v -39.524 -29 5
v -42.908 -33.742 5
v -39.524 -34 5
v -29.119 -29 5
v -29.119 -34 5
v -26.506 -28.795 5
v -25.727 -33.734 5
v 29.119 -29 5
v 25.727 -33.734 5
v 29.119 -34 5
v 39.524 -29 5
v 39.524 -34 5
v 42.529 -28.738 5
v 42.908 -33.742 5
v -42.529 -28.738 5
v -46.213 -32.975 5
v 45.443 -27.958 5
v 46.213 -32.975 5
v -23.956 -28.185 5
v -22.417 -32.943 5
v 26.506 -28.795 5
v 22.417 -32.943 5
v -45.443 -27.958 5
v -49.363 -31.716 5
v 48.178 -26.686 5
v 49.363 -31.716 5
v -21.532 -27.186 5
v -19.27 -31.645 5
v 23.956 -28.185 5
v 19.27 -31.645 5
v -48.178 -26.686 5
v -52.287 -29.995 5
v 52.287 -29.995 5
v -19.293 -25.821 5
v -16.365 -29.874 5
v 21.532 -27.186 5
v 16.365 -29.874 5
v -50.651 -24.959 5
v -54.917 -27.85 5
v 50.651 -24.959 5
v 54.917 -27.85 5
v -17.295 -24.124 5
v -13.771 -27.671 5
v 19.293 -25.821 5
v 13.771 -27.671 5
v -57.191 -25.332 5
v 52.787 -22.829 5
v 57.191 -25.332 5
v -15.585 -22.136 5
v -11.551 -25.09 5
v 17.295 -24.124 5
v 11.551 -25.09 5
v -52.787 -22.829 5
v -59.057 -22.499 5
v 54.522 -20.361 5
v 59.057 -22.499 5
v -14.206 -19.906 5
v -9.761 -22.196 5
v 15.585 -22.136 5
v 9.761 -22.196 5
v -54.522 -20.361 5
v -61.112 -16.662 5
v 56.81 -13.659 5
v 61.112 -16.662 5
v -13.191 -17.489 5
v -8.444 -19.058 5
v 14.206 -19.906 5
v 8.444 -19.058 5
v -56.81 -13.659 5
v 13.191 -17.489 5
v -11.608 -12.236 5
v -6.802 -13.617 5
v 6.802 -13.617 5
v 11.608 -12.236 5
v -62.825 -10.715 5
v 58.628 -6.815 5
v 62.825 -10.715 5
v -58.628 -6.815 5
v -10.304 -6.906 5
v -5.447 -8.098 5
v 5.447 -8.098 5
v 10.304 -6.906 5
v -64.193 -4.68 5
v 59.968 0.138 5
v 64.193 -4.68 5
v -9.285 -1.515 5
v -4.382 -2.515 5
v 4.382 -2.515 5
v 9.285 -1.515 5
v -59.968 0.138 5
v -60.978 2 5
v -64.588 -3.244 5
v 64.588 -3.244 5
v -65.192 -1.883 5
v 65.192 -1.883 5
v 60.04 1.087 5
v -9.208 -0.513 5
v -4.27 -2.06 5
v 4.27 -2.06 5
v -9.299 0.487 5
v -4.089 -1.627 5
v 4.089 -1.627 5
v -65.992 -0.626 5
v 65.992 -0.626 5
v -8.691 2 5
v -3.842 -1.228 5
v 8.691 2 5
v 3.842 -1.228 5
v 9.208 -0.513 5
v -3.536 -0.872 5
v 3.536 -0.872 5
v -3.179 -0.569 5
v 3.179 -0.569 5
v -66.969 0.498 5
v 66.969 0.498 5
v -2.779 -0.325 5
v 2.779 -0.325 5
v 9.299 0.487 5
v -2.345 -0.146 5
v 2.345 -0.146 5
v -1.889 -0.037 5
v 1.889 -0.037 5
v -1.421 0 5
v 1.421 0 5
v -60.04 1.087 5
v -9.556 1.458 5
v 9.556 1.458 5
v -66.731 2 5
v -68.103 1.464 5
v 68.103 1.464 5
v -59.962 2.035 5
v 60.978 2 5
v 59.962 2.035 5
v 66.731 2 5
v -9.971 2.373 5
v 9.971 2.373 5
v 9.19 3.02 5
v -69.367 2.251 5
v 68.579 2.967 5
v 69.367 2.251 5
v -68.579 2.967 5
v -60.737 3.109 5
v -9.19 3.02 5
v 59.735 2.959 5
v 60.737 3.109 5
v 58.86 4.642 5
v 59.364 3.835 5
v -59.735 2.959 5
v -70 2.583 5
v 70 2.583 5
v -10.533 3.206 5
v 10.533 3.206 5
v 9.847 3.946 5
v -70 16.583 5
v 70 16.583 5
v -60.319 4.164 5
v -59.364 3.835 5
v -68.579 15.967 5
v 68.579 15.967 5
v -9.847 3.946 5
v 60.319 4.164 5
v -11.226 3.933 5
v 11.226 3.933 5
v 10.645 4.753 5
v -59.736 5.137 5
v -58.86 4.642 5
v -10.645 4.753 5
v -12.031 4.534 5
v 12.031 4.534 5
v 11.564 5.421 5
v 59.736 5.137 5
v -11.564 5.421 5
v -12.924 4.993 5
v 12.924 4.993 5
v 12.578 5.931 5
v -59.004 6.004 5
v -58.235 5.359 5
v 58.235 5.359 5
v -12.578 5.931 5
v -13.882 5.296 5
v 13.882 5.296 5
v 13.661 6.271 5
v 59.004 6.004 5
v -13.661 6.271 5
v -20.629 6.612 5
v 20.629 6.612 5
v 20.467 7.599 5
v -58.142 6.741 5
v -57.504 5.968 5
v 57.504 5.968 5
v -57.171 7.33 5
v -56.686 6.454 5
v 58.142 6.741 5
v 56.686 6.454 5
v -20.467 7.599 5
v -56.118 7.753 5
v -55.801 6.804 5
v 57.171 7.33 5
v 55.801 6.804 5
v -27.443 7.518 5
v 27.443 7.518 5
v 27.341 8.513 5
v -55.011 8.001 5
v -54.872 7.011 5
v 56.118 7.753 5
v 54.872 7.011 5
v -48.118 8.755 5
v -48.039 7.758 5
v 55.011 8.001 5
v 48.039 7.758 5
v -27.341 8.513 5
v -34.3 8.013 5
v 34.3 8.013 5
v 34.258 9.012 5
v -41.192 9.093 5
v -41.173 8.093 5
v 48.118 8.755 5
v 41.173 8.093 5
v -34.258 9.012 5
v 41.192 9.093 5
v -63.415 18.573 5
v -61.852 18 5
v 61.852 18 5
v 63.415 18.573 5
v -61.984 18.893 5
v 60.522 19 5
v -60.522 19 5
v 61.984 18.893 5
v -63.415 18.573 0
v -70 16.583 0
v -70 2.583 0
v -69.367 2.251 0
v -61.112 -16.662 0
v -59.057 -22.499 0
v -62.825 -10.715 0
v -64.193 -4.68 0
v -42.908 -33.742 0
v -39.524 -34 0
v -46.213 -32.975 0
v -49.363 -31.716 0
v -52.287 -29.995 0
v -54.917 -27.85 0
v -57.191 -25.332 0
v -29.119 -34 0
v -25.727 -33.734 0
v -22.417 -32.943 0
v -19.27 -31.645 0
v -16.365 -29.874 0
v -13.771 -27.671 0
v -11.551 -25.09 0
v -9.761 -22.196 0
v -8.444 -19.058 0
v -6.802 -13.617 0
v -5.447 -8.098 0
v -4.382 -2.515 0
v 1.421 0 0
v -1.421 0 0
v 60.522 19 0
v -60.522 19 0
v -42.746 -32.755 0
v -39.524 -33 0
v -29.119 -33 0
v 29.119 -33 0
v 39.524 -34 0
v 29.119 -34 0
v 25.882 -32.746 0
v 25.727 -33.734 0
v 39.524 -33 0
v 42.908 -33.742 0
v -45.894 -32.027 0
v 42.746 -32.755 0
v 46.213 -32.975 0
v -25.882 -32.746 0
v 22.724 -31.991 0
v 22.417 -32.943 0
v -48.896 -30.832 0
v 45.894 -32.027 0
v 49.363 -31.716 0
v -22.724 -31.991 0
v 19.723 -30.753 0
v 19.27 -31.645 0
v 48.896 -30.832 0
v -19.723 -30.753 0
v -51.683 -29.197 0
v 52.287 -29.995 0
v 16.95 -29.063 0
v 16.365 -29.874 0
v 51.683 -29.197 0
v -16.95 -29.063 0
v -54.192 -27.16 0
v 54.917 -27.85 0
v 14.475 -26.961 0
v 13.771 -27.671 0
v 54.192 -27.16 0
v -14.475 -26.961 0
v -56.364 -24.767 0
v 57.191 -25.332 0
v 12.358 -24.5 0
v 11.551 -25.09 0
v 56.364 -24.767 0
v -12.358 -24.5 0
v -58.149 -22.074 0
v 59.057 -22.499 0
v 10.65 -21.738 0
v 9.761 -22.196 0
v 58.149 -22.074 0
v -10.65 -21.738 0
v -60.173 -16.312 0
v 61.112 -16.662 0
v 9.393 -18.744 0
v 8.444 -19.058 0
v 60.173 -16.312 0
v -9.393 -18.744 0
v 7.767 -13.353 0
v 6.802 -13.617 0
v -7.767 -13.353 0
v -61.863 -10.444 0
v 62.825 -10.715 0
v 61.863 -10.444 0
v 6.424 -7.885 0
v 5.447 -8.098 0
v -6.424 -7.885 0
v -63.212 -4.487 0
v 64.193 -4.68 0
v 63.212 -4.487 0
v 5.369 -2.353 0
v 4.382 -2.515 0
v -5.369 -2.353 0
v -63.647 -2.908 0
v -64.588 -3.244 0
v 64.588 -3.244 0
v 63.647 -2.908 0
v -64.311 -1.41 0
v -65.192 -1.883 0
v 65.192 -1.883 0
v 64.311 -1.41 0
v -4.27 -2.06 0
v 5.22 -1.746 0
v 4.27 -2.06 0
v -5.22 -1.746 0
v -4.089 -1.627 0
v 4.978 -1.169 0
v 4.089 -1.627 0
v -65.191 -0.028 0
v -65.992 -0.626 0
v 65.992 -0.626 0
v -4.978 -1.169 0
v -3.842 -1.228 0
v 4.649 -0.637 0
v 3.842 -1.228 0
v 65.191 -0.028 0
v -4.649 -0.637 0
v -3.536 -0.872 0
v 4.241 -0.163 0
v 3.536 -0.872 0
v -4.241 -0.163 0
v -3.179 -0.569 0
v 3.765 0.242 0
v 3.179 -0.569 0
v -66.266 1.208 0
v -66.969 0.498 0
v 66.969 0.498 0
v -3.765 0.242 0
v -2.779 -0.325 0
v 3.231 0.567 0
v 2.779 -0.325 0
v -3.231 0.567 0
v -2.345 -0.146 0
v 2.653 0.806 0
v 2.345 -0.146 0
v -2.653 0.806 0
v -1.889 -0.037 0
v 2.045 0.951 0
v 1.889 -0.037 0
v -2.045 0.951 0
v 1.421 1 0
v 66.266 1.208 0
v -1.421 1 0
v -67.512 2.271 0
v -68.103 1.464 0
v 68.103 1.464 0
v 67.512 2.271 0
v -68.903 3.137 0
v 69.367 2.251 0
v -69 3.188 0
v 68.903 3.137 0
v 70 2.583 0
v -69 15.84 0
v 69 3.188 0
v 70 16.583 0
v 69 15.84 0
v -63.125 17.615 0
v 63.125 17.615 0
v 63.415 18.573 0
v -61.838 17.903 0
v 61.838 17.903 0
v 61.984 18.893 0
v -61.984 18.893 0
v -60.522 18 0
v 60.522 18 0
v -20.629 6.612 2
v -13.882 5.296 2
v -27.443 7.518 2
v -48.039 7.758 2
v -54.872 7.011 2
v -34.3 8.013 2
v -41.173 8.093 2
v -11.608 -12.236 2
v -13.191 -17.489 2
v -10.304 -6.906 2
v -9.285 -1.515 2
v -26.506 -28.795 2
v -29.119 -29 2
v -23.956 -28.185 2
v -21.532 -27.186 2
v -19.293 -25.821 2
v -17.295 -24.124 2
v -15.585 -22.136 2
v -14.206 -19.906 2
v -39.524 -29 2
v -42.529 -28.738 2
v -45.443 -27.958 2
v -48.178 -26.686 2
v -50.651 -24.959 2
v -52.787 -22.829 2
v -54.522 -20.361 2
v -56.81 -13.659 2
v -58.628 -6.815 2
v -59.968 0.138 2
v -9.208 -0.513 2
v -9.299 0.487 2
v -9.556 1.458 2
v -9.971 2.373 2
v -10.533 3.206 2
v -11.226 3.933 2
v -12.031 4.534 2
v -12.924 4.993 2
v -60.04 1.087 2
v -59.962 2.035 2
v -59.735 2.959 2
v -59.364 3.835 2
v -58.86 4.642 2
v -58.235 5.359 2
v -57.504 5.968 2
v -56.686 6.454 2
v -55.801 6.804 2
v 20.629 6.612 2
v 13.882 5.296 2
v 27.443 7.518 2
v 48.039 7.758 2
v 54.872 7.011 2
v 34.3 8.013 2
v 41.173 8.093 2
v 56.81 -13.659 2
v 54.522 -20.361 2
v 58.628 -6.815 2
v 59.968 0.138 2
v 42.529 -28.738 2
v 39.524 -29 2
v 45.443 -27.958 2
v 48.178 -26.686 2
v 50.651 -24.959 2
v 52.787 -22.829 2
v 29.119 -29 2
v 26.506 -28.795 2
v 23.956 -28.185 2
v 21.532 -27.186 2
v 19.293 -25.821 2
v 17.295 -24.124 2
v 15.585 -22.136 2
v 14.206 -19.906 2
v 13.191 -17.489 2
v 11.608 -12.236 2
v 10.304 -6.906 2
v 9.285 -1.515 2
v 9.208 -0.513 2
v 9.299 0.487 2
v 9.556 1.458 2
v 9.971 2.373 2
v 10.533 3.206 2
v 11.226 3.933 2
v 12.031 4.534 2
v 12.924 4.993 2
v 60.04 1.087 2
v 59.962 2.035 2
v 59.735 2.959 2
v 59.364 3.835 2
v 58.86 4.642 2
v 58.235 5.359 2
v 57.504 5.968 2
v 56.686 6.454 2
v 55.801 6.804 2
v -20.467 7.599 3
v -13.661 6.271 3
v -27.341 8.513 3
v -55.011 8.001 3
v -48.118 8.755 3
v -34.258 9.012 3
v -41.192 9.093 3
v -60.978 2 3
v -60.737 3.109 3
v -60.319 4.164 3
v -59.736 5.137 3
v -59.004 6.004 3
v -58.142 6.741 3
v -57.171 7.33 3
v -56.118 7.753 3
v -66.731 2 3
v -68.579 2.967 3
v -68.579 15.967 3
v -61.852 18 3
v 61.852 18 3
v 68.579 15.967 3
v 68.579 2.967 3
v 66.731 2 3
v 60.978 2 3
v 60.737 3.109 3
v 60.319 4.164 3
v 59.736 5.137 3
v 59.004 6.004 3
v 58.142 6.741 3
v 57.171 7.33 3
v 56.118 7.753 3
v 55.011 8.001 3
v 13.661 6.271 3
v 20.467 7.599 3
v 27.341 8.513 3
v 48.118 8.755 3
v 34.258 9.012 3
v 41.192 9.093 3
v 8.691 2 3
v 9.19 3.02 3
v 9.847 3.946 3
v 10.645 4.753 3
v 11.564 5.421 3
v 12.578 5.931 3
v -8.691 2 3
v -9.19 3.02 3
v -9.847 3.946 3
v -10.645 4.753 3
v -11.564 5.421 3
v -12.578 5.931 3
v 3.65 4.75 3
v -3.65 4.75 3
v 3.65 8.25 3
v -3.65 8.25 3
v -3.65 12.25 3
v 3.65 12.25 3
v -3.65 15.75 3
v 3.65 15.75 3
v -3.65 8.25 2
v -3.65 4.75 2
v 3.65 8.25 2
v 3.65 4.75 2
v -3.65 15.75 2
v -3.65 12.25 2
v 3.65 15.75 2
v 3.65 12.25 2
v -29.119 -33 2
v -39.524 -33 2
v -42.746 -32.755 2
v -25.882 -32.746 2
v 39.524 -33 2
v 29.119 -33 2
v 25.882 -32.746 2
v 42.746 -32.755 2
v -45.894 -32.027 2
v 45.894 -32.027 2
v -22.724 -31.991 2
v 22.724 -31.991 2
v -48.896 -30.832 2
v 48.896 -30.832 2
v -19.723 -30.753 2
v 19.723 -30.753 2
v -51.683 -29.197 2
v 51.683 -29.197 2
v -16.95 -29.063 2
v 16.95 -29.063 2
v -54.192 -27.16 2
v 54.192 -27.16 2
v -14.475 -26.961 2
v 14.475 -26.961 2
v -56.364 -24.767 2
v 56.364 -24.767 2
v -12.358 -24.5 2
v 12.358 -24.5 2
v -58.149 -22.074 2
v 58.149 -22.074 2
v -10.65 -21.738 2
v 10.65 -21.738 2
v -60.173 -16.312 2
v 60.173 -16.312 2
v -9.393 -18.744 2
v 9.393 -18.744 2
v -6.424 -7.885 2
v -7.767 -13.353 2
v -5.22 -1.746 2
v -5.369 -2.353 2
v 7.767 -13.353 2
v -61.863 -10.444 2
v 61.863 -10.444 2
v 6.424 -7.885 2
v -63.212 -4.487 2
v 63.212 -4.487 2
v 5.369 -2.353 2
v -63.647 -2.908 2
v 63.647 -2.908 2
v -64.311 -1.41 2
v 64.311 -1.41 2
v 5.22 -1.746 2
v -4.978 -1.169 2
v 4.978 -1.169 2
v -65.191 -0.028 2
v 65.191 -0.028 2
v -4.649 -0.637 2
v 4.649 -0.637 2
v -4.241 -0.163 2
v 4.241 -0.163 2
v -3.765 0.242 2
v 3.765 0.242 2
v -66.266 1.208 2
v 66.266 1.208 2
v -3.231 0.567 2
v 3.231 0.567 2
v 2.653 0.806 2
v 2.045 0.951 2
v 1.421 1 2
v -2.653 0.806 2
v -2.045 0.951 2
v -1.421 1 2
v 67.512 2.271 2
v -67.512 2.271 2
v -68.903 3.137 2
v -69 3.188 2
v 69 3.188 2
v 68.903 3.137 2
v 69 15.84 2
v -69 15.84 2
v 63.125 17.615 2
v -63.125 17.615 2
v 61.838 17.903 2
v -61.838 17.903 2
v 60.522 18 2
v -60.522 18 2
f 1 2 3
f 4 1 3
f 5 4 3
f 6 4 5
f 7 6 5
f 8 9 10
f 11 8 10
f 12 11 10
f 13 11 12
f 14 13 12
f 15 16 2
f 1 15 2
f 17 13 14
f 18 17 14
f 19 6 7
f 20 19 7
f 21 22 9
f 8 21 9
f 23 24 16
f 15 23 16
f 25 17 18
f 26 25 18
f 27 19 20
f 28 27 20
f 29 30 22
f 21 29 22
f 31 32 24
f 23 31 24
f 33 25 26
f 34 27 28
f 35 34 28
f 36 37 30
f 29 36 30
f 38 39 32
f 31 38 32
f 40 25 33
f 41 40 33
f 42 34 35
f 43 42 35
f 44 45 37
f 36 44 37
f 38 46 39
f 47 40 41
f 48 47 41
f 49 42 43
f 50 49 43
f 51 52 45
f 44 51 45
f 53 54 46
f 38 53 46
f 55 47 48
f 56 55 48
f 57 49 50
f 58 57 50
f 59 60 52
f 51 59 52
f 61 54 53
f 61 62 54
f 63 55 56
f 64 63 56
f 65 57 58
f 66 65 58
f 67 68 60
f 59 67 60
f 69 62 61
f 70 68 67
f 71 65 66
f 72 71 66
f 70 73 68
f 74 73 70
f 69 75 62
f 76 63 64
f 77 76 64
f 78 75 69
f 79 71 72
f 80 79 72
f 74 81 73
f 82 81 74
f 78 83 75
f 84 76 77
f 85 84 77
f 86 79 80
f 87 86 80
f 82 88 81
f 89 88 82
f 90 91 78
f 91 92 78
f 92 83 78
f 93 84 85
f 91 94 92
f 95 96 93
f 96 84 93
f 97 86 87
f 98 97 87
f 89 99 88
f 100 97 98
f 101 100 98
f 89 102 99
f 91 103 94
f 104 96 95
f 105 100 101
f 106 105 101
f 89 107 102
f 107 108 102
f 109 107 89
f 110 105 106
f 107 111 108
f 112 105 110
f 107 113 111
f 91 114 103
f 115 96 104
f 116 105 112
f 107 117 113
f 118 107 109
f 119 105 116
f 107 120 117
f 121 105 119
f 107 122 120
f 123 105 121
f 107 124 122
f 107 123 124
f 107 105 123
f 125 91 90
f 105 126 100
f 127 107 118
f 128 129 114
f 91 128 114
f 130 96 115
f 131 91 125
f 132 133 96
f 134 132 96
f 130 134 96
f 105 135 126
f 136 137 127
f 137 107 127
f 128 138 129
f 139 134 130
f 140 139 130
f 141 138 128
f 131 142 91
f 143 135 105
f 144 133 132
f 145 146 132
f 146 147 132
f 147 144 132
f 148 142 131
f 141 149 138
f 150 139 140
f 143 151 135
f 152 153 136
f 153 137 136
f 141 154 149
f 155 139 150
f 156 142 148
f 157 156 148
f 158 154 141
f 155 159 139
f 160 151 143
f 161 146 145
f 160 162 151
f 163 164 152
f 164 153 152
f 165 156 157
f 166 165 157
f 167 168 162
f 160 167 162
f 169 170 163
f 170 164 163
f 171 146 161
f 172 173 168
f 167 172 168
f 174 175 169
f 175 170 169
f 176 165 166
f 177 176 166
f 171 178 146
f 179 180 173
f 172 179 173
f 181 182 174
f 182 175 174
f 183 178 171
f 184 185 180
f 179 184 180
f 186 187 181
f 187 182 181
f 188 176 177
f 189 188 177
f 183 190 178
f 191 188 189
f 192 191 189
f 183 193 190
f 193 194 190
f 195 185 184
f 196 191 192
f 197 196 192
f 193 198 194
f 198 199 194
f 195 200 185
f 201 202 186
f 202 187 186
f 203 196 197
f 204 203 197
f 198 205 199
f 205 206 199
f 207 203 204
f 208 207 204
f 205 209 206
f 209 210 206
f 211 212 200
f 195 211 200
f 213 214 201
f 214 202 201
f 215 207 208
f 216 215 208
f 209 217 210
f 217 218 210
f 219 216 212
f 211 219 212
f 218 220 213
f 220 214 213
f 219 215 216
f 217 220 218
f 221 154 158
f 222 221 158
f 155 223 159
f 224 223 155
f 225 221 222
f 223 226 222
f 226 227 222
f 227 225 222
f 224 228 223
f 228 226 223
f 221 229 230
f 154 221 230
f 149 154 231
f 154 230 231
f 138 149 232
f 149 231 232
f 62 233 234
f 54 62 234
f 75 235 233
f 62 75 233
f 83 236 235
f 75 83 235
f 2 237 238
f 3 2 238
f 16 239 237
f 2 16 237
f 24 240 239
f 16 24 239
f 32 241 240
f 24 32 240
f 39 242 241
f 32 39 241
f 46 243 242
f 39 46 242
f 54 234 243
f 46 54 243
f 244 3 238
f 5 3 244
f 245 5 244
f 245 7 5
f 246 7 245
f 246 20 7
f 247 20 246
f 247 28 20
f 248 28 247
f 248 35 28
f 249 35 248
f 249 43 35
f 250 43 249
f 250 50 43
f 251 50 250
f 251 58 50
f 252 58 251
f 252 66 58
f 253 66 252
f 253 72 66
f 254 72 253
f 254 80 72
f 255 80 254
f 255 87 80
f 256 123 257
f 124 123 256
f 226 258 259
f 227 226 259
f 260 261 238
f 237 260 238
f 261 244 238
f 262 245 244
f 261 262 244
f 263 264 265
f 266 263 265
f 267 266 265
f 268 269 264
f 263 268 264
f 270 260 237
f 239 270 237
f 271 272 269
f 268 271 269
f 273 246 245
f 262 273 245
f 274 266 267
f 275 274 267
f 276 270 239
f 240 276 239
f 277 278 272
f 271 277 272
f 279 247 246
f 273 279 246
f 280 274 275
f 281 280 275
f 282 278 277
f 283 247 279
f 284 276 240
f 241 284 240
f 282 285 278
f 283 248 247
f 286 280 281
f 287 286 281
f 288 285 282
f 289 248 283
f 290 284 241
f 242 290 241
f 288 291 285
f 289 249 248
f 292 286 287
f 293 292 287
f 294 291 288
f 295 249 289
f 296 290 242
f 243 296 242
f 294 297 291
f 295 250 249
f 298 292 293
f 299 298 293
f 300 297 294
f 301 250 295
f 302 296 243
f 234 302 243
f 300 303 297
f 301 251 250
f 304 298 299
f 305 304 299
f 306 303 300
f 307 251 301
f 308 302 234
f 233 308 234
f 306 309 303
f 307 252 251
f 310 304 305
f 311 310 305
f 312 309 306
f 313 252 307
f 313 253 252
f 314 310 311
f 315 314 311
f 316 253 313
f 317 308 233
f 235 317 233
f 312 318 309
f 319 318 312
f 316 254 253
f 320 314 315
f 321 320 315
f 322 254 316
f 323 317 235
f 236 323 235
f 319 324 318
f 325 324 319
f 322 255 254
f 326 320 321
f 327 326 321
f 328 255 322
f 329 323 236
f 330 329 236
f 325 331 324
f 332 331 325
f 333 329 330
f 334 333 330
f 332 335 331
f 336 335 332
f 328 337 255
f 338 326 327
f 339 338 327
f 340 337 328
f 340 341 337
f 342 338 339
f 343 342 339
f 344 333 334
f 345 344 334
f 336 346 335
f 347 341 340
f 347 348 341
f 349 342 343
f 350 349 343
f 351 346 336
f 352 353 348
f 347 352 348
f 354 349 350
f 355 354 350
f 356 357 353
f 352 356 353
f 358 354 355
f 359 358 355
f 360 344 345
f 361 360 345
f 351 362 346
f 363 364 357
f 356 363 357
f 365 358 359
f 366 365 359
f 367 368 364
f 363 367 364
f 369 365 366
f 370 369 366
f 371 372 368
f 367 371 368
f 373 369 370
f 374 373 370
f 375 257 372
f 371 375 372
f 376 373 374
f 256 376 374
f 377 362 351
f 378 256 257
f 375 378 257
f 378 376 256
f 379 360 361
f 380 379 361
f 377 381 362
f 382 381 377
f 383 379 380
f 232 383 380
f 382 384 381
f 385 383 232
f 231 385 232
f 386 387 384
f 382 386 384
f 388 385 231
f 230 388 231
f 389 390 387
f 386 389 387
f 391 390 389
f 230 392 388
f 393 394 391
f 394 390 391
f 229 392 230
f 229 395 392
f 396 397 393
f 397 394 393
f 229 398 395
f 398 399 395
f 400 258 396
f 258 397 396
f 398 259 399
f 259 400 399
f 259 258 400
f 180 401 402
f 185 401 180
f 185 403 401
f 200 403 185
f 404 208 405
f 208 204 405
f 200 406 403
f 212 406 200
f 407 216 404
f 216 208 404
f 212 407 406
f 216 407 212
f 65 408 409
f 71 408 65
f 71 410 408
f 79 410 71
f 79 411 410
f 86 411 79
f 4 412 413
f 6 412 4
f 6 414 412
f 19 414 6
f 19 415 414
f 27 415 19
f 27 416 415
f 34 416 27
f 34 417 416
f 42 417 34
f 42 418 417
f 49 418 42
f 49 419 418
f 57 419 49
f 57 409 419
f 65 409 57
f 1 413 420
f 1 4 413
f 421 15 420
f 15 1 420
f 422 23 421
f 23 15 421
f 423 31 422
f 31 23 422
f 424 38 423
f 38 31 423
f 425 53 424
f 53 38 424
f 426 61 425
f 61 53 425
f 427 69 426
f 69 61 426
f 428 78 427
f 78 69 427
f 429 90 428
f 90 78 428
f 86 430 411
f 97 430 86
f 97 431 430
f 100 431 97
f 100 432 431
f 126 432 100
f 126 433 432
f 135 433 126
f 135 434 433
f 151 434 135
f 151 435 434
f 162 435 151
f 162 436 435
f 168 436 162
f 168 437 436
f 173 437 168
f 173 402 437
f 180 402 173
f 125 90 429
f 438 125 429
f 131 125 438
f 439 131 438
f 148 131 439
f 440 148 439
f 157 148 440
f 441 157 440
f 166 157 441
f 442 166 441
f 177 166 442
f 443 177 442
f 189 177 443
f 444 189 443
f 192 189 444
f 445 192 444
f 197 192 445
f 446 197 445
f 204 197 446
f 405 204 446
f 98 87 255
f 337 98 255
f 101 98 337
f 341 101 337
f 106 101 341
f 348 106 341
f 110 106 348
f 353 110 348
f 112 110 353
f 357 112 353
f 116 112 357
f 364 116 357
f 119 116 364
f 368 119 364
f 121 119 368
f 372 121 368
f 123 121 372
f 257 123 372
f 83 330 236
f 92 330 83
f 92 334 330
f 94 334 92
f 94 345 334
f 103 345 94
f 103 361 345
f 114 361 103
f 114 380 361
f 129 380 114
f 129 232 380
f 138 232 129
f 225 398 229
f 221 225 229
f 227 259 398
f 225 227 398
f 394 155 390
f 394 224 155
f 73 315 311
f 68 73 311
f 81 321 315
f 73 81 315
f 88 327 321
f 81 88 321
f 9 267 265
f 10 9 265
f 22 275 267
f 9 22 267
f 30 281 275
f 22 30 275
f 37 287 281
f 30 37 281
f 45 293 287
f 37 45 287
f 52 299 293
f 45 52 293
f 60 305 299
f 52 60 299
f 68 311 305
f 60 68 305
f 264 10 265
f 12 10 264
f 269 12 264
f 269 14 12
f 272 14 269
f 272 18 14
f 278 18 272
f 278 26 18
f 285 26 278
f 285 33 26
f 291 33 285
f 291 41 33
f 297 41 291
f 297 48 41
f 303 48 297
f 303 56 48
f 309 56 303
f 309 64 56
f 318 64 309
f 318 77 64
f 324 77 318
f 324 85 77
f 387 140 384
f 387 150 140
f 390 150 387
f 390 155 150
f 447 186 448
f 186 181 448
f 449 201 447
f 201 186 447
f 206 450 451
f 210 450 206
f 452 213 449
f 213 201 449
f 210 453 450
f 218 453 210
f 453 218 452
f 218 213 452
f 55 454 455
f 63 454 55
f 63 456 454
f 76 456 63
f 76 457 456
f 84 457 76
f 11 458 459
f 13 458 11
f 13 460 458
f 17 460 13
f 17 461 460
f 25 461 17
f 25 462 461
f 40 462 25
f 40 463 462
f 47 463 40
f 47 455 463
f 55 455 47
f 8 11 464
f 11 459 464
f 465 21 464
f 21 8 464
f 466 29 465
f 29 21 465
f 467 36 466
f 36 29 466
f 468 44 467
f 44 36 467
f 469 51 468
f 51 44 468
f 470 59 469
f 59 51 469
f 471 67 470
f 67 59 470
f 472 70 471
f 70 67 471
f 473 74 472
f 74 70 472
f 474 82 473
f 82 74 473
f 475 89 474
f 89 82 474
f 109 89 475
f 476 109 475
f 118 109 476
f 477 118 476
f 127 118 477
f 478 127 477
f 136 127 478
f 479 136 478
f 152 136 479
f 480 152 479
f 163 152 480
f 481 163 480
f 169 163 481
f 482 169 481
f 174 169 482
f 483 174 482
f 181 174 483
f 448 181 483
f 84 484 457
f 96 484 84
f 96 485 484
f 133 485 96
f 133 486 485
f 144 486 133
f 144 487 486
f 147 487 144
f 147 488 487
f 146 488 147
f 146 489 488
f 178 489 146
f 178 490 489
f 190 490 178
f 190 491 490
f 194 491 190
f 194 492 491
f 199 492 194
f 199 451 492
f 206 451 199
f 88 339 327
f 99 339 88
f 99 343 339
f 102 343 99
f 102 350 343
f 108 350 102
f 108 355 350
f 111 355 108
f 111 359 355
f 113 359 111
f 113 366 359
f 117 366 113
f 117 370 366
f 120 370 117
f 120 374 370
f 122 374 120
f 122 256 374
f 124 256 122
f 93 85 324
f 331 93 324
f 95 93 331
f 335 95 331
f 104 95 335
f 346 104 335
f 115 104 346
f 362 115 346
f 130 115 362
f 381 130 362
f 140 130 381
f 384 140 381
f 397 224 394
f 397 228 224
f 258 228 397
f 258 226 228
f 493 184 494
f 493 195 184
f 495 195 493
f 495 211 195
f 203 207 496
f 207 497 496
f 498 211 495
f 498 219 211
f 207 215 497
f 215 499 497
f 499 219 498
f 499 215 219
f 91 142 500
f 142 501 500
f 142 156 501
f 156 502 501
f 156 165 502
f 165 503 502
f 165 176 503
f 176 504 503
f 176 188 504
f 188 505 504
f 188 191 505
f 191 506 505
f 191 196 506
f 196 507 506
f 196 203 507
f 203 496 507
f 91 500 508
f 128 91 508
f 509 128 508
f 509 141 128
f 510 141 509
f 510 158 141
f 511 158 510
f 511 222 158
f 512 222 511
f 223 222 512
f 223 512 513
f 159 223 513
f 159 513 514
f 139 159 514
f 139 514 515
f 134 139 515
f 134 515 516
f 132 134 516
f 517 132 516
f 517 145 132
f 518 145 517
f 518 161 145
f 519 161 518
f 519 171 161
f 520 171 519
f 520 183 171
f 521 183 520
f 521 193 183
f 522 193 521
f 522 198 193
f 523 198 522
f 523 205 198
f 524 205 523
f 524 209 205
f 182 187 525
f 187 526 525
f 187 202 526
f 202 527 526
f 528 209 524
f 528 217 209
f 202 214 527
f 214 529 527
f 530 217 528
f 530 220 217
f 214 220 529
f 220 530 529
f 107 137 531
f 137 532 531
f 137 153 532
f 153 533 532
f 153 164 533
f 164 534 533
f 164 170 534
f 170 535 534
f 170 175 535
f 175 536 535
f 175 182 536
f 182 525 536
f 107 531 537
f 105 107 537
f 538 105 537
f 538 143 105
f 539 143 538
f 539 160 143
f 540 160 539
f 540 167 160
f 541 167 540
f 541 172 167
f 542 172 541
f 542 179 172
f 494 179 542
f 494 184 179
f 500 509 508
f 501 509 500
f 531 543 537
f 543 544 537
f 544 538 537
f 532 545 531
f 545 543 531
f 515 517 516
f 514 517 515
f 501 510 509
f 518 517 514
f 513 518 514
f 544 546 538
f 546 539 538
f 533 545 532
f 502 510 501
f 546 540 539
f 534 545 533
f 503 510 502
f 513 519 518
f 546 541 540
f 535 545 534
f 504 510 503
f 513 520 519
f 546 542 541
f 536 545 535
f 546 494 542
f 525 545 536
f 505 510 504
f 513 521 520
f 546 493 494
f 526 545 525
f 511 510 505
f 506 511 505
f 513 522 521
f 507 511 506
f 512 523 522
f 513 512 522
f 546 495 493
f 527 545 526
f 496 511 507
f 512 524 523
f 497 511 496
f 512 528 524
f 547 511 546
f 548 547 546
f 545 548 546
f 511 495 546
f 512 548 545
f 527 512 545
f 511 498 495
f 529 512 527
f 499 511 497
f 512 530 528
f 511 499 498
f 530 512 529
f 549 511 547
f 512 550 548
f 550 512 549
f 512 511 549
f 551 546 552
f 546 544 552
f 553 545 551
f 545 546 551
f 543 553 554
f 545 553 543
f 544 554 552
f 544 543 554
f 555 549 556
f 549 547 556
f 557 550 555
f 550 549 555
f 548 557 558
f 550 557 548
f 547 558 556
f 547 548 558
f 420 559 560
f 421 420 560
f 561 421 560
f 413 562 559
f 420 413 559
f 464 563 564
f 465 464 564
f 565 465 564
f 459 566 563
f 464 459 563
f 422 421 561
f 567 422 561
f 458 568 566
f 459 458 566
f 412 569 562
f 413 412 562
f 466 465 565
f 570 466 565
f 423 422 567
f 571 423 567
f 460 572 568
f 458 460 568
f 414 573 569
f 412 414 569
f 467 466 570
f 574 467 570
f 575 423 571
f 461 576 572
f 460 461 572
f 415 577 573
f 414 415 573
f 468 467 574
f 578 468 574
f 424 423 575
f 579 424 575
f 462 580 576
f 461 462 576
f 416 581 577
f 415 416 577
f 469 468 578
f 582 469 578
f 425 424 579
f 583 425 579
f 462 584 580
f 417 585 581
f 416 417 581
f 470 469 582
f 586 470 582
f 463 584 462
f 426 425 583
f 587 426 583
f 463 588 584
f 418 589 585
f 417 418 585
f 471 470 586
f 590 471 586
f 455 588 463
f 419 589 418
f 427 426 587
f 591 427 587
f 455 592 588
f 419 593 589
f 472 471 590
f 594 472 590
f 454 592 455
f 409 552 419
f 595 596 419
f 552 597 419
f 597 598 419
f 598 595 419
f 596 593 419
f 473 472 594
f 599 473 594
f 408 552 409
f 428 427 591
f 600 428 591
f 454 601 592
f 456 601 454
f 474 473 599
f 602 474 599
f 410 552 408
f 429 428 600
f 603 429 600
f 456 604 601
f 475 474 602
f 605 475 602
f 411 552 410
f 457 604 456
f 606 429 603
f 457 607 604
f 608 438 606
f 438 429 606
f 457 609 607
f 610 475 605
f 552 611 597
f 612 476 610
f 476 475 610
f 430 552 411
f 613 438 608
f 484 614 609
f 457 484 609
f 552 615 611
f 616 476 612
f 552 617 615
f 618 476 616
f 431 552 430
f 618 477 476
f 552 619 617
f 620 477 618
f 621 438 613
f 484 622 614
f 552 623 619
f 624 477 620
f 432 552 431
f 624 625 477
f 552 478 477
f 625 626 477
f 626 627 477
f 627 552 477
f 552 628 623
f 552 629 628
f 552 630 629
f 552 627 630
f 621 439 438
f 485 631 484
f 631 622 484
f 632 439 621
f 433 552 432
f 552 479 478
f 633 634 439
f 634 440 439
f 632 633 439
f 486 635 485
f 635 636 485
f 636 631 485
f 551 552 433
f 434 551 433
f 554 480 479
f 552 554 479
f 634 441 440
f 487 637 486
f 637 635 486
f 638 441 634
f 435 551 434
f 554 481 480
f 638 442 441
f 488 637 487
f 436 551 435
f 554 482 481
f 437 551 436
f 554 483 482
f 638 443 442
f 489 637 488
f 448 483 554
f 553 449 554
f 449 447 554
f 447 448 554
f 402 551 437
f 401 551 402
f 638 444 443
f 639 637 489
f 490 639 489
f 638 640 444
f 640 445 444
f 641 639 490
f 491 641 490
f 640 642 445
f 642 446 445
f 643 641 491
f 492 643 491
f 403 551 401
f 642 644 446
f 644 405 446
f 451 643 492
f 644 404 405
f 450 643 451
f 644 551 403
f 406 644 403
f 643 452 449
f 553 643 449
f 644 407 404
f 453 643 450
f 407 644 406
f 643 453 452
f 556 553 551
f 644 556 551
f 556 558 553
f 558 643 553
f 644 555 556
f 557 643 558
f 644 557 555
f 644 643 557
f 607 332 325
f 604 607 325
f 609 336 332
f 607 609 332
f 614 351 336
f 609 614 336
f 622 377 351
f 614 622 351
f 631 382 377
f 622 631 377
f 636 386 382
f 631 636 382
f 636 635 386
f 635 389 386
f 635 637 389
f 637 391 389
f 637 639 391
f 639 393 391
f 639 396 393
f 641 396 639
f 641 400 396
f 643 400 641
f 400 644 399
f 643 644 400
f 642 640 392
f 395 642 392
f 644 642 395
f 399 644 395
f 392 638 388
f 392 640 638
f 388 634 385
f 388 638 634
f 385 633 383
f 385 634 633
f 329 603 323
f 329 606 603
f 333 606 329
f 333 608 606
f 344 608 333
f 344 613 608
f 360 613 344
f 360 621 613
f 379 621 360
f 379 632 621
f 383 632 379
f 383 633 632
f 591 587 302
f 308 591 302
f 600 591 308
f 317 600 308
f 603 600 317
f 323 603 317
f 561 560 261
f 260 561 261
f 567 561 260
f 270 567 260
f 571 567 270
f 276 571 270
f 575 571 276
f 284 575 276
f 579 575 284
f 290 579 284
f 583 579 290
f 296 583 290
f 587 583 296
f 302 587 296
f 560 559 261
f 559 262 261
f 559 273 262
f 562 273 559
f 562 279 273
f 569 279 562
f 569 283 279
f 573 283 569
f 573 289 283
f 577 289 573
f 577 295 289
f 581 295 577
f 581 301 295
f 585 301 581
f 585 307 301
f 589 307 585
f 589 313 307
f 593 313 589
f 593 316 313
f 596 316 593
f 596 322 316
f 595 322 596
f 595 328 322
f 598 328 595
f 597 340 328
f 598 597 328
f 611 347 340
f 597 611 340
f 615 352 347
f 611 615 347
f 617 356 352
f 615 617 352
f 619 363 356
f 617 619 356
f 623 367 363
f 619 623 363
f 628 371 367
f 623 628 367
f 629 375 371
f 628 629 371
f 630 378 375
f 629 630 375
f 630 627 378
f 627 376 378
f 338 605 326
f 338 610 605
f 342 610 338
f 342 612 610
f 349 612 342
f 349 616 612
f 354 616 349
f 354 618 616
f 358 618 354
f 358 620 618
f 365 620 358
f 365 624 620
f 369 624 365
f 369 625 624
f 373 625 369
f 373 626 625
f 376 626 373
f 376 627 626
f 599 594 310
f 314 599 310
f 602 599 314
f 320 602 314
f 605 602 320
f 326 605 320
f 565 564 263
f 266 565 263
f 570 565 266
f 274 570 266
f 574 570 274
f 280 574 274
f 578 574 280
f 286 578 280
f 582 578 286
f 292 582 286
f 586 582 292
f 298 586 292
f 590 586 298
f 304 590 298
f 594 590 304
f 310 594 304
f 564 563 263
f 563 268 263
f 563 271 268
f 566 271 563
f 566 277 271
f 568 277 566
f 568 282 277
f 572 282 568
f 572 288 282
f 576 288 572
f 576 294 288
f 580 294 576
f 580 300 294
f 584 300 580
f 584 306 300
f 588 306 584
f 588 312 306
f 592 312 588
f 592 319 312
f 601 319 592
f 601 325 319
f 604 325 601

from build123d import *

# Parameters (mm, degrees)
BOSS_EXTRUDE1_DEPTH  = 5
CUT_EXTRUDE1_DEPTH   = 78.98076686
FILLET1_R            = 6
FILLET4_R            = 3
FILLET5_R            = 10
FILLET1_OF_MIRROR2_R = 6
FILLET4_OF_MIRROR2_R = 3
FILLET5_OF_MIRROR2_R = 10
CUT_EXTRUDE2_DEPTH   = 2
SKETCH4_W            = 7.3
SKETCH4_H            = 3.5
CUT_EXTRUDE3_DEPTH   = 78.878110027
CUT_EXTRUDE4_START   = -1
CUT_EXTRUDE4_DEPTH   = 2


with BuildPart() as part:
    # Sketch1 → Boss-Extrude1 (new body)
    with BuildSketch(Plane.XY):
        with BuildLine():
            Line((-70, 16.58258549), (-70, 2.58258549))
            Line((-70, 2.58258549), (-65, -0.035347018))
            ThreePointArc((-65, -0.035347018), (-62.639321295, -11.428715409), (-59.057390955, -22.499009997))
            ThreePointArc((-59.057390955, -22.499009997), (-50.858075368, -30.911196539), (-39.524366721, -34))
            Line((-39.524366721, -34), (-29.119439011, -34))
            ThreePointArc((-29.119439011, -34), (-16.364659062, -29.873537236), (-8.443933007, -19.058075838))
            ThreePointArc((-8.443933007, -19.058075838), (-5.792248942, -9.629238804), (-4, 0))
            Line((-4, 0), (0, 0))
            Line((0, 0), (0, 19))
            Line((0, 19), (-62, 19))
            Line((-62, 19), (-70, 16.58258549))
        make_face()
    boss_extrude1 = extrude(amount=BOSS_EXTRUDE1_DEPTH)

    # Sketch2 → Cut-Extrude1 (cut, through all)
    with BuildSketch(Plane.XY.offset(5)):
        with BuildLine():
            Line((-39.524366721, -29), (-29.119439011, -29))
            ThreePointArc((-29.119439011, -29), (-19.293350153, -25.821035725), (-13.191343035, -17.488968441))
            ThreePointArc((-13.191343035, -17.488968441), (-10.661621804, -8.493805879), (-8.951806424, 0.692541077))
            ThreePointArc((-8.951806424, 0.692541077), (-8.83111114, 2.375291538), (-8.93749946, 4.05900707))
            ThreePointArc((-8.93749946, 4.05900707), (-33.987475013, 7.999161751), (-59.288689209, 6.303681198))
            ThreePointArc((-59.288689209, 6.303681198), (-60.075532666, 3.563074376), (-60.056140486, 0.711816353))
            ThreePointArc((-60.056140486, 0.711816353), (-57.852345066, -9.972645379), (-54.521869403, -20.361214511))
            ThreePointArc((-54.521869403, -20.361214511), (-48.178176596, -26.685865227), (-39.524366721, -29))
        make_face()
    cut_extrude1 = extrude(amount=-CUT_EXTRUDE1_DEPTH, mode=Mode.SUBTRACT)

    # Fillet1
    fillet1_edges = [part.edges().sort_by_distance(p)[0] for p in [
        (-8.93749946, 4.05900707, 2.5),
        (-59.288689209, 6.303681198, 2.5),
    ]]
    fillet(fillet1_edges, radius=FILLET1_R)

    # Fillet4
    fillet4_edges = [part.edges().sort_by_distance(p)[0] for p in [
        (-4, 0, 2.5),
    ]]
    fillet(fillet4_edges, radius=FILLET4_R)

    # Fillet5
    fillet5_edges = [part.edges().sort_by_distance(p)[0] for p in [
        (-65, -0.035347018, 2.5),
        (-62, 19, 2.5),
    ]]
    fillet(fillet5_edges, radius=FILLET5_R)

    # Mirror2: Boss-Extrude1, Cut-Extrude1 across plane
    add(boss_extrude1.mirror(Plane(origin=(0, 19, 5), x_dir=(0, 0, 1), z_dir=(1, 0, 0))))
    add(cut_extrude1.mirror(Plane(origin=(0, 19, 5), x_dir=(0, 0, 1), z_dir=(1, 0, 0))), mode=Mode.SUBTRACT)

    # Fillet1 of Mirror2
    fillet1_of_mirror2_edges = [part.edges().sort_by_distance(p)[0] for p in [
        (8.93749946, 4.05900707, 2.5),
        (59.288689209, 6.303681198, 2.5),
    ]]
    fillet(fillet1_of_mirror2_edges, radius=FILLET1_OF_MIRROR2_R)

    # Fillet4 of Mirror2
    fillet4_of_mirror2_edges = [part.edges().sort_by_distance(p)[0] for p in [
        (4, 0, 2.5),
    ]]
    fillet(fillet4_of_mirror2_edges, radius=FILLET4_OF_MIRROR2_R)

    # Fillet5 of Mirror2
    fillet5_of_mirror2_edges = [part.edges().sort_by_distance(p)[0] for p in [
        (65, -0.035347018, 2.5),
        (62, 19, 2.5),
    ]]
    fillet(fillet5_of_mirror2_edges, radius=FILLET5_OF_MIRROR2_R)

    # Sketch3 → Cut-Extrude2 (cut)
    with BuildSketch(Plane.XY.offset(5)):
        with BuildLine():
            Line((-61.852211578, 18), (-68.579000582, 15.967320332))
            Line((-68.579000582, 15.967320332), (-68.579000582, 2.967348727))
            Line((-68.579000582, 2.967348727), (-66.731457293, 2))
            Line((-66.731457293, 2), (-60.978148267, 2))
            ThreePointArc((-60.978148267, 2), (-59.004204322, 6.004331826), (-55.011184694, 8.001059729))
            ThreePointArc((-55.011184694, 8.001059729), (-34.257732376, 9.011771002), (-13.66121584, 6.271182212))
            ThreePointArc((-13.66121584, 6.271182212), (-10.64537641, 4.753154175), (-8.690935653, 2))
            Line((-8.690935653, 2), (-4.382114171, 2))
            Line((-4.382114171, 2), (0, 2))
            Line((0, 2), (0, 18))
            Line((0, 18), (-61.852211578, 18))
        make_face()
        with BuildLine():
            Line((61.852211578, 18), (0, 18))
            Line((0, 18), (0, 2))
            Line((0, 2), (4.382114171, 2))
            Line((4.382114171, 2), (8.690935653, 2))
            ThreePointArc((8.690935653, 2), (10.64537641, 4.753154175), (13.66121584, 6.271182212))
            ThreePointArc((13.66121584, 6.271182212), (34.257732376, 9.011771002), (55.011184694, 8.001059729))
            ThreePointArc((55.011184694, 8.001059729), (59.004204322, 6.004331826), (60.978148267, 2))
            Line((60.978148267, 2), (66.731457293, 2))
            Line((66.731457293, 2), (68.579000582, 2.967348727))
            Line((68.579000582, 2.967348727), (68.579000582, 15.967320332))
            Line((68.579000582, 15.967320332), (61.852211578, 18))
        make_face()
    extrude(amount=-CUT_EXTRUDE2_DEPTH, mode=Mode.SUBTRACT)

    # Sketch4 → Cut-Extrude3 (cut, through all)
    with BuildSketch(Plane.XY.offset(3)):
        with Locations((0, 14)):
            Rectangle(SKETCH4_W, SKETCH4_H)
        with Locations((0, 6.5)):
            Rectangle(SKETCH4_W, SKETCH4_H)
    extrude(amount=-CUT_EXTRUDE3_DEPTH, mode=Mode.SUBTRACT)

    # Sketch6 → Cut-Extrude4 (cut)
    with BuildSketch(Plane.XY.offset(3).offset(CUT_EXTRUDE4_START)):
        with BuildLine():
            Line((69, 15.840104069), (63.125446932, 17.615257798))
            ThreePointArc((63.125446932, 17.615257798), (61.837919684, 17.903294901), (60.522115781, 18))
            Line((60.522115781, 18), (-60.522115781, 18))
            ThreePointArc((-60.522115781, 18), (-61.837919684, 17.903294901), (-63.125446932, 17.615257798))
            Line((-63.125446932, 17.615257798), (-69, 15.840104069))
            Line((-69, 15.840104069), (-69, 3.18777834))
            Line((-69, 3.18777834), (-68.903213495, 3.137102232))
            ThreePointArc((-68.903213495, 3.137102232), (-65.190574761, -0.027998941), (-63.211910581, -4.487420414))
            ThreePointArc((-63.211910581, -4.487420414), (-61.060268821, -13.390129723), (-58.149320801, -22.074263356))
            ThreePointArc((-58.149320801, -22.074263356), (-50.3209013, -30.066984302), (-39.524366721, -33))
            Line((-39.524366721, -33), (-29.119439011, -33))
            ThreePointArc((-29.119439011, -33), (-16.95039728, -29.063036934), (-9.393415013, -18.744254359))
            ThreePointArc((-9.393415013, -18.744254359), (-7.059487639, -10.627794467), (-5.368651351, -2.353423746))
            ThreePointArc((-5.368651351, -2.353423746), (-4.01101304, 0.048467239), (-1.421254848, 1))
            Line((-1.421254848, 1), (1.421254848, 1))
            ThreePointArc((1.421254848, 1), (4.01101304, 0.048467239), (5.368651351, -2.353423746))
            ThreePointArc((5.368651351, -2.353423746), (7.059487639, -10.627794467), (9.393415013, -18.744254359))
            ThreePointArc((9.393415013, -18.744254359), (16.95039728, -29.063036934), (29.119439011, -33))
            Line((29.119439011, -33), (39.524366721, -33))
            ThreePointArc((39.524366721, -33), (50.3209013, -30.066984302), (58.149320801, -22.074263356))
            ThreePointArc((58.149320801, -22.074263356), (61.060268821, -13.390129723), (63.211910581, -4.487420414))
            ThreePointArc((63.211910581, -4.487420414), (65.190574761, -0.027998941), (68.903213495, 3.137102232))
            Line((68.903213495, 3.137102232), (69, 3.18777834))
            Line((69, 3.18777834), (69, 15.840104069))
        make_face()
        with BuildLine():
            Line((39.524366721, -29), (29.119439011, -29))
            ThreePointArc((29.119439011, -29), (19.293350153, -25.821035725), (13.191343035, -17.488968441))
            ThreePointArc((13.191343035, -17.488968441), (10.920912078, -9.579342567), (9.284744219, -1.514604944))
            ThreePointArc((9.284744219, -1.514604944), (10.234661813, 2.801128318), (13.882135009, 5.295890091))
            ThreePointArc((13.882135009, 5.295890091), (34.299530853, 8.01264494), (54.872497662, 7.010723469))
            ThreePointArc((54.872497662, 7.010723469), (58.860128117, 4.642217415), (59.967820133, 0.138437228))
            ThreePointArc((59.967820133, 0.138437228), (57.77826599, -10.253097668), (54.521869403, -20.361214511))
            ThreePointArc((54.521869403, -20.361214511), (48.178176596, -26.685865227), (39.524366721, -29))
        make_face(mode=Mode.SUBTRACT)
        with BuildLine():
            Line((-39.524366721, -29), (-29.119439011, -29))
            ThreePointArc((-29.119439011, -29), (-19.293350153, -25.821035725), (-13.191343035, -17.488968441))
            ThreePointArc((-13.191343035, -17.488968441), (-10.920912078, -9.579342567), (-9.284744219, -1.514604944))
            ThreePointArc((-9.284744219, -1.514604944), (-10.234661813, 2.801128318), (-13.882135009, 5.295890091))
            ThreePointArc((-13.882135009, 5.295890091), (-34.299530853, 8.01264494), (-54.872497662, 7.010723469))
            ThreePointArc((-54.872497662, 7.010723469), (-58.860128117, 4.642217415), (-59.967820133, 0.138437228))
            ThreePointArc((-59.967820133, 0.138437228), (-57.77826599, -10.253097668), (-54.521869403, -20.361214511))
            ThreePointArc((-54.521869403, -20.361214511), (-48.178176596, -26.685865227), (-39.524366721, -29))
        make_face(mode=Mode.SUBTRACT)
    extrude(amount=-CUT_EXTRUDE4_DEPTH, mode=Mode.SUBTRACT)


solid = part.part
